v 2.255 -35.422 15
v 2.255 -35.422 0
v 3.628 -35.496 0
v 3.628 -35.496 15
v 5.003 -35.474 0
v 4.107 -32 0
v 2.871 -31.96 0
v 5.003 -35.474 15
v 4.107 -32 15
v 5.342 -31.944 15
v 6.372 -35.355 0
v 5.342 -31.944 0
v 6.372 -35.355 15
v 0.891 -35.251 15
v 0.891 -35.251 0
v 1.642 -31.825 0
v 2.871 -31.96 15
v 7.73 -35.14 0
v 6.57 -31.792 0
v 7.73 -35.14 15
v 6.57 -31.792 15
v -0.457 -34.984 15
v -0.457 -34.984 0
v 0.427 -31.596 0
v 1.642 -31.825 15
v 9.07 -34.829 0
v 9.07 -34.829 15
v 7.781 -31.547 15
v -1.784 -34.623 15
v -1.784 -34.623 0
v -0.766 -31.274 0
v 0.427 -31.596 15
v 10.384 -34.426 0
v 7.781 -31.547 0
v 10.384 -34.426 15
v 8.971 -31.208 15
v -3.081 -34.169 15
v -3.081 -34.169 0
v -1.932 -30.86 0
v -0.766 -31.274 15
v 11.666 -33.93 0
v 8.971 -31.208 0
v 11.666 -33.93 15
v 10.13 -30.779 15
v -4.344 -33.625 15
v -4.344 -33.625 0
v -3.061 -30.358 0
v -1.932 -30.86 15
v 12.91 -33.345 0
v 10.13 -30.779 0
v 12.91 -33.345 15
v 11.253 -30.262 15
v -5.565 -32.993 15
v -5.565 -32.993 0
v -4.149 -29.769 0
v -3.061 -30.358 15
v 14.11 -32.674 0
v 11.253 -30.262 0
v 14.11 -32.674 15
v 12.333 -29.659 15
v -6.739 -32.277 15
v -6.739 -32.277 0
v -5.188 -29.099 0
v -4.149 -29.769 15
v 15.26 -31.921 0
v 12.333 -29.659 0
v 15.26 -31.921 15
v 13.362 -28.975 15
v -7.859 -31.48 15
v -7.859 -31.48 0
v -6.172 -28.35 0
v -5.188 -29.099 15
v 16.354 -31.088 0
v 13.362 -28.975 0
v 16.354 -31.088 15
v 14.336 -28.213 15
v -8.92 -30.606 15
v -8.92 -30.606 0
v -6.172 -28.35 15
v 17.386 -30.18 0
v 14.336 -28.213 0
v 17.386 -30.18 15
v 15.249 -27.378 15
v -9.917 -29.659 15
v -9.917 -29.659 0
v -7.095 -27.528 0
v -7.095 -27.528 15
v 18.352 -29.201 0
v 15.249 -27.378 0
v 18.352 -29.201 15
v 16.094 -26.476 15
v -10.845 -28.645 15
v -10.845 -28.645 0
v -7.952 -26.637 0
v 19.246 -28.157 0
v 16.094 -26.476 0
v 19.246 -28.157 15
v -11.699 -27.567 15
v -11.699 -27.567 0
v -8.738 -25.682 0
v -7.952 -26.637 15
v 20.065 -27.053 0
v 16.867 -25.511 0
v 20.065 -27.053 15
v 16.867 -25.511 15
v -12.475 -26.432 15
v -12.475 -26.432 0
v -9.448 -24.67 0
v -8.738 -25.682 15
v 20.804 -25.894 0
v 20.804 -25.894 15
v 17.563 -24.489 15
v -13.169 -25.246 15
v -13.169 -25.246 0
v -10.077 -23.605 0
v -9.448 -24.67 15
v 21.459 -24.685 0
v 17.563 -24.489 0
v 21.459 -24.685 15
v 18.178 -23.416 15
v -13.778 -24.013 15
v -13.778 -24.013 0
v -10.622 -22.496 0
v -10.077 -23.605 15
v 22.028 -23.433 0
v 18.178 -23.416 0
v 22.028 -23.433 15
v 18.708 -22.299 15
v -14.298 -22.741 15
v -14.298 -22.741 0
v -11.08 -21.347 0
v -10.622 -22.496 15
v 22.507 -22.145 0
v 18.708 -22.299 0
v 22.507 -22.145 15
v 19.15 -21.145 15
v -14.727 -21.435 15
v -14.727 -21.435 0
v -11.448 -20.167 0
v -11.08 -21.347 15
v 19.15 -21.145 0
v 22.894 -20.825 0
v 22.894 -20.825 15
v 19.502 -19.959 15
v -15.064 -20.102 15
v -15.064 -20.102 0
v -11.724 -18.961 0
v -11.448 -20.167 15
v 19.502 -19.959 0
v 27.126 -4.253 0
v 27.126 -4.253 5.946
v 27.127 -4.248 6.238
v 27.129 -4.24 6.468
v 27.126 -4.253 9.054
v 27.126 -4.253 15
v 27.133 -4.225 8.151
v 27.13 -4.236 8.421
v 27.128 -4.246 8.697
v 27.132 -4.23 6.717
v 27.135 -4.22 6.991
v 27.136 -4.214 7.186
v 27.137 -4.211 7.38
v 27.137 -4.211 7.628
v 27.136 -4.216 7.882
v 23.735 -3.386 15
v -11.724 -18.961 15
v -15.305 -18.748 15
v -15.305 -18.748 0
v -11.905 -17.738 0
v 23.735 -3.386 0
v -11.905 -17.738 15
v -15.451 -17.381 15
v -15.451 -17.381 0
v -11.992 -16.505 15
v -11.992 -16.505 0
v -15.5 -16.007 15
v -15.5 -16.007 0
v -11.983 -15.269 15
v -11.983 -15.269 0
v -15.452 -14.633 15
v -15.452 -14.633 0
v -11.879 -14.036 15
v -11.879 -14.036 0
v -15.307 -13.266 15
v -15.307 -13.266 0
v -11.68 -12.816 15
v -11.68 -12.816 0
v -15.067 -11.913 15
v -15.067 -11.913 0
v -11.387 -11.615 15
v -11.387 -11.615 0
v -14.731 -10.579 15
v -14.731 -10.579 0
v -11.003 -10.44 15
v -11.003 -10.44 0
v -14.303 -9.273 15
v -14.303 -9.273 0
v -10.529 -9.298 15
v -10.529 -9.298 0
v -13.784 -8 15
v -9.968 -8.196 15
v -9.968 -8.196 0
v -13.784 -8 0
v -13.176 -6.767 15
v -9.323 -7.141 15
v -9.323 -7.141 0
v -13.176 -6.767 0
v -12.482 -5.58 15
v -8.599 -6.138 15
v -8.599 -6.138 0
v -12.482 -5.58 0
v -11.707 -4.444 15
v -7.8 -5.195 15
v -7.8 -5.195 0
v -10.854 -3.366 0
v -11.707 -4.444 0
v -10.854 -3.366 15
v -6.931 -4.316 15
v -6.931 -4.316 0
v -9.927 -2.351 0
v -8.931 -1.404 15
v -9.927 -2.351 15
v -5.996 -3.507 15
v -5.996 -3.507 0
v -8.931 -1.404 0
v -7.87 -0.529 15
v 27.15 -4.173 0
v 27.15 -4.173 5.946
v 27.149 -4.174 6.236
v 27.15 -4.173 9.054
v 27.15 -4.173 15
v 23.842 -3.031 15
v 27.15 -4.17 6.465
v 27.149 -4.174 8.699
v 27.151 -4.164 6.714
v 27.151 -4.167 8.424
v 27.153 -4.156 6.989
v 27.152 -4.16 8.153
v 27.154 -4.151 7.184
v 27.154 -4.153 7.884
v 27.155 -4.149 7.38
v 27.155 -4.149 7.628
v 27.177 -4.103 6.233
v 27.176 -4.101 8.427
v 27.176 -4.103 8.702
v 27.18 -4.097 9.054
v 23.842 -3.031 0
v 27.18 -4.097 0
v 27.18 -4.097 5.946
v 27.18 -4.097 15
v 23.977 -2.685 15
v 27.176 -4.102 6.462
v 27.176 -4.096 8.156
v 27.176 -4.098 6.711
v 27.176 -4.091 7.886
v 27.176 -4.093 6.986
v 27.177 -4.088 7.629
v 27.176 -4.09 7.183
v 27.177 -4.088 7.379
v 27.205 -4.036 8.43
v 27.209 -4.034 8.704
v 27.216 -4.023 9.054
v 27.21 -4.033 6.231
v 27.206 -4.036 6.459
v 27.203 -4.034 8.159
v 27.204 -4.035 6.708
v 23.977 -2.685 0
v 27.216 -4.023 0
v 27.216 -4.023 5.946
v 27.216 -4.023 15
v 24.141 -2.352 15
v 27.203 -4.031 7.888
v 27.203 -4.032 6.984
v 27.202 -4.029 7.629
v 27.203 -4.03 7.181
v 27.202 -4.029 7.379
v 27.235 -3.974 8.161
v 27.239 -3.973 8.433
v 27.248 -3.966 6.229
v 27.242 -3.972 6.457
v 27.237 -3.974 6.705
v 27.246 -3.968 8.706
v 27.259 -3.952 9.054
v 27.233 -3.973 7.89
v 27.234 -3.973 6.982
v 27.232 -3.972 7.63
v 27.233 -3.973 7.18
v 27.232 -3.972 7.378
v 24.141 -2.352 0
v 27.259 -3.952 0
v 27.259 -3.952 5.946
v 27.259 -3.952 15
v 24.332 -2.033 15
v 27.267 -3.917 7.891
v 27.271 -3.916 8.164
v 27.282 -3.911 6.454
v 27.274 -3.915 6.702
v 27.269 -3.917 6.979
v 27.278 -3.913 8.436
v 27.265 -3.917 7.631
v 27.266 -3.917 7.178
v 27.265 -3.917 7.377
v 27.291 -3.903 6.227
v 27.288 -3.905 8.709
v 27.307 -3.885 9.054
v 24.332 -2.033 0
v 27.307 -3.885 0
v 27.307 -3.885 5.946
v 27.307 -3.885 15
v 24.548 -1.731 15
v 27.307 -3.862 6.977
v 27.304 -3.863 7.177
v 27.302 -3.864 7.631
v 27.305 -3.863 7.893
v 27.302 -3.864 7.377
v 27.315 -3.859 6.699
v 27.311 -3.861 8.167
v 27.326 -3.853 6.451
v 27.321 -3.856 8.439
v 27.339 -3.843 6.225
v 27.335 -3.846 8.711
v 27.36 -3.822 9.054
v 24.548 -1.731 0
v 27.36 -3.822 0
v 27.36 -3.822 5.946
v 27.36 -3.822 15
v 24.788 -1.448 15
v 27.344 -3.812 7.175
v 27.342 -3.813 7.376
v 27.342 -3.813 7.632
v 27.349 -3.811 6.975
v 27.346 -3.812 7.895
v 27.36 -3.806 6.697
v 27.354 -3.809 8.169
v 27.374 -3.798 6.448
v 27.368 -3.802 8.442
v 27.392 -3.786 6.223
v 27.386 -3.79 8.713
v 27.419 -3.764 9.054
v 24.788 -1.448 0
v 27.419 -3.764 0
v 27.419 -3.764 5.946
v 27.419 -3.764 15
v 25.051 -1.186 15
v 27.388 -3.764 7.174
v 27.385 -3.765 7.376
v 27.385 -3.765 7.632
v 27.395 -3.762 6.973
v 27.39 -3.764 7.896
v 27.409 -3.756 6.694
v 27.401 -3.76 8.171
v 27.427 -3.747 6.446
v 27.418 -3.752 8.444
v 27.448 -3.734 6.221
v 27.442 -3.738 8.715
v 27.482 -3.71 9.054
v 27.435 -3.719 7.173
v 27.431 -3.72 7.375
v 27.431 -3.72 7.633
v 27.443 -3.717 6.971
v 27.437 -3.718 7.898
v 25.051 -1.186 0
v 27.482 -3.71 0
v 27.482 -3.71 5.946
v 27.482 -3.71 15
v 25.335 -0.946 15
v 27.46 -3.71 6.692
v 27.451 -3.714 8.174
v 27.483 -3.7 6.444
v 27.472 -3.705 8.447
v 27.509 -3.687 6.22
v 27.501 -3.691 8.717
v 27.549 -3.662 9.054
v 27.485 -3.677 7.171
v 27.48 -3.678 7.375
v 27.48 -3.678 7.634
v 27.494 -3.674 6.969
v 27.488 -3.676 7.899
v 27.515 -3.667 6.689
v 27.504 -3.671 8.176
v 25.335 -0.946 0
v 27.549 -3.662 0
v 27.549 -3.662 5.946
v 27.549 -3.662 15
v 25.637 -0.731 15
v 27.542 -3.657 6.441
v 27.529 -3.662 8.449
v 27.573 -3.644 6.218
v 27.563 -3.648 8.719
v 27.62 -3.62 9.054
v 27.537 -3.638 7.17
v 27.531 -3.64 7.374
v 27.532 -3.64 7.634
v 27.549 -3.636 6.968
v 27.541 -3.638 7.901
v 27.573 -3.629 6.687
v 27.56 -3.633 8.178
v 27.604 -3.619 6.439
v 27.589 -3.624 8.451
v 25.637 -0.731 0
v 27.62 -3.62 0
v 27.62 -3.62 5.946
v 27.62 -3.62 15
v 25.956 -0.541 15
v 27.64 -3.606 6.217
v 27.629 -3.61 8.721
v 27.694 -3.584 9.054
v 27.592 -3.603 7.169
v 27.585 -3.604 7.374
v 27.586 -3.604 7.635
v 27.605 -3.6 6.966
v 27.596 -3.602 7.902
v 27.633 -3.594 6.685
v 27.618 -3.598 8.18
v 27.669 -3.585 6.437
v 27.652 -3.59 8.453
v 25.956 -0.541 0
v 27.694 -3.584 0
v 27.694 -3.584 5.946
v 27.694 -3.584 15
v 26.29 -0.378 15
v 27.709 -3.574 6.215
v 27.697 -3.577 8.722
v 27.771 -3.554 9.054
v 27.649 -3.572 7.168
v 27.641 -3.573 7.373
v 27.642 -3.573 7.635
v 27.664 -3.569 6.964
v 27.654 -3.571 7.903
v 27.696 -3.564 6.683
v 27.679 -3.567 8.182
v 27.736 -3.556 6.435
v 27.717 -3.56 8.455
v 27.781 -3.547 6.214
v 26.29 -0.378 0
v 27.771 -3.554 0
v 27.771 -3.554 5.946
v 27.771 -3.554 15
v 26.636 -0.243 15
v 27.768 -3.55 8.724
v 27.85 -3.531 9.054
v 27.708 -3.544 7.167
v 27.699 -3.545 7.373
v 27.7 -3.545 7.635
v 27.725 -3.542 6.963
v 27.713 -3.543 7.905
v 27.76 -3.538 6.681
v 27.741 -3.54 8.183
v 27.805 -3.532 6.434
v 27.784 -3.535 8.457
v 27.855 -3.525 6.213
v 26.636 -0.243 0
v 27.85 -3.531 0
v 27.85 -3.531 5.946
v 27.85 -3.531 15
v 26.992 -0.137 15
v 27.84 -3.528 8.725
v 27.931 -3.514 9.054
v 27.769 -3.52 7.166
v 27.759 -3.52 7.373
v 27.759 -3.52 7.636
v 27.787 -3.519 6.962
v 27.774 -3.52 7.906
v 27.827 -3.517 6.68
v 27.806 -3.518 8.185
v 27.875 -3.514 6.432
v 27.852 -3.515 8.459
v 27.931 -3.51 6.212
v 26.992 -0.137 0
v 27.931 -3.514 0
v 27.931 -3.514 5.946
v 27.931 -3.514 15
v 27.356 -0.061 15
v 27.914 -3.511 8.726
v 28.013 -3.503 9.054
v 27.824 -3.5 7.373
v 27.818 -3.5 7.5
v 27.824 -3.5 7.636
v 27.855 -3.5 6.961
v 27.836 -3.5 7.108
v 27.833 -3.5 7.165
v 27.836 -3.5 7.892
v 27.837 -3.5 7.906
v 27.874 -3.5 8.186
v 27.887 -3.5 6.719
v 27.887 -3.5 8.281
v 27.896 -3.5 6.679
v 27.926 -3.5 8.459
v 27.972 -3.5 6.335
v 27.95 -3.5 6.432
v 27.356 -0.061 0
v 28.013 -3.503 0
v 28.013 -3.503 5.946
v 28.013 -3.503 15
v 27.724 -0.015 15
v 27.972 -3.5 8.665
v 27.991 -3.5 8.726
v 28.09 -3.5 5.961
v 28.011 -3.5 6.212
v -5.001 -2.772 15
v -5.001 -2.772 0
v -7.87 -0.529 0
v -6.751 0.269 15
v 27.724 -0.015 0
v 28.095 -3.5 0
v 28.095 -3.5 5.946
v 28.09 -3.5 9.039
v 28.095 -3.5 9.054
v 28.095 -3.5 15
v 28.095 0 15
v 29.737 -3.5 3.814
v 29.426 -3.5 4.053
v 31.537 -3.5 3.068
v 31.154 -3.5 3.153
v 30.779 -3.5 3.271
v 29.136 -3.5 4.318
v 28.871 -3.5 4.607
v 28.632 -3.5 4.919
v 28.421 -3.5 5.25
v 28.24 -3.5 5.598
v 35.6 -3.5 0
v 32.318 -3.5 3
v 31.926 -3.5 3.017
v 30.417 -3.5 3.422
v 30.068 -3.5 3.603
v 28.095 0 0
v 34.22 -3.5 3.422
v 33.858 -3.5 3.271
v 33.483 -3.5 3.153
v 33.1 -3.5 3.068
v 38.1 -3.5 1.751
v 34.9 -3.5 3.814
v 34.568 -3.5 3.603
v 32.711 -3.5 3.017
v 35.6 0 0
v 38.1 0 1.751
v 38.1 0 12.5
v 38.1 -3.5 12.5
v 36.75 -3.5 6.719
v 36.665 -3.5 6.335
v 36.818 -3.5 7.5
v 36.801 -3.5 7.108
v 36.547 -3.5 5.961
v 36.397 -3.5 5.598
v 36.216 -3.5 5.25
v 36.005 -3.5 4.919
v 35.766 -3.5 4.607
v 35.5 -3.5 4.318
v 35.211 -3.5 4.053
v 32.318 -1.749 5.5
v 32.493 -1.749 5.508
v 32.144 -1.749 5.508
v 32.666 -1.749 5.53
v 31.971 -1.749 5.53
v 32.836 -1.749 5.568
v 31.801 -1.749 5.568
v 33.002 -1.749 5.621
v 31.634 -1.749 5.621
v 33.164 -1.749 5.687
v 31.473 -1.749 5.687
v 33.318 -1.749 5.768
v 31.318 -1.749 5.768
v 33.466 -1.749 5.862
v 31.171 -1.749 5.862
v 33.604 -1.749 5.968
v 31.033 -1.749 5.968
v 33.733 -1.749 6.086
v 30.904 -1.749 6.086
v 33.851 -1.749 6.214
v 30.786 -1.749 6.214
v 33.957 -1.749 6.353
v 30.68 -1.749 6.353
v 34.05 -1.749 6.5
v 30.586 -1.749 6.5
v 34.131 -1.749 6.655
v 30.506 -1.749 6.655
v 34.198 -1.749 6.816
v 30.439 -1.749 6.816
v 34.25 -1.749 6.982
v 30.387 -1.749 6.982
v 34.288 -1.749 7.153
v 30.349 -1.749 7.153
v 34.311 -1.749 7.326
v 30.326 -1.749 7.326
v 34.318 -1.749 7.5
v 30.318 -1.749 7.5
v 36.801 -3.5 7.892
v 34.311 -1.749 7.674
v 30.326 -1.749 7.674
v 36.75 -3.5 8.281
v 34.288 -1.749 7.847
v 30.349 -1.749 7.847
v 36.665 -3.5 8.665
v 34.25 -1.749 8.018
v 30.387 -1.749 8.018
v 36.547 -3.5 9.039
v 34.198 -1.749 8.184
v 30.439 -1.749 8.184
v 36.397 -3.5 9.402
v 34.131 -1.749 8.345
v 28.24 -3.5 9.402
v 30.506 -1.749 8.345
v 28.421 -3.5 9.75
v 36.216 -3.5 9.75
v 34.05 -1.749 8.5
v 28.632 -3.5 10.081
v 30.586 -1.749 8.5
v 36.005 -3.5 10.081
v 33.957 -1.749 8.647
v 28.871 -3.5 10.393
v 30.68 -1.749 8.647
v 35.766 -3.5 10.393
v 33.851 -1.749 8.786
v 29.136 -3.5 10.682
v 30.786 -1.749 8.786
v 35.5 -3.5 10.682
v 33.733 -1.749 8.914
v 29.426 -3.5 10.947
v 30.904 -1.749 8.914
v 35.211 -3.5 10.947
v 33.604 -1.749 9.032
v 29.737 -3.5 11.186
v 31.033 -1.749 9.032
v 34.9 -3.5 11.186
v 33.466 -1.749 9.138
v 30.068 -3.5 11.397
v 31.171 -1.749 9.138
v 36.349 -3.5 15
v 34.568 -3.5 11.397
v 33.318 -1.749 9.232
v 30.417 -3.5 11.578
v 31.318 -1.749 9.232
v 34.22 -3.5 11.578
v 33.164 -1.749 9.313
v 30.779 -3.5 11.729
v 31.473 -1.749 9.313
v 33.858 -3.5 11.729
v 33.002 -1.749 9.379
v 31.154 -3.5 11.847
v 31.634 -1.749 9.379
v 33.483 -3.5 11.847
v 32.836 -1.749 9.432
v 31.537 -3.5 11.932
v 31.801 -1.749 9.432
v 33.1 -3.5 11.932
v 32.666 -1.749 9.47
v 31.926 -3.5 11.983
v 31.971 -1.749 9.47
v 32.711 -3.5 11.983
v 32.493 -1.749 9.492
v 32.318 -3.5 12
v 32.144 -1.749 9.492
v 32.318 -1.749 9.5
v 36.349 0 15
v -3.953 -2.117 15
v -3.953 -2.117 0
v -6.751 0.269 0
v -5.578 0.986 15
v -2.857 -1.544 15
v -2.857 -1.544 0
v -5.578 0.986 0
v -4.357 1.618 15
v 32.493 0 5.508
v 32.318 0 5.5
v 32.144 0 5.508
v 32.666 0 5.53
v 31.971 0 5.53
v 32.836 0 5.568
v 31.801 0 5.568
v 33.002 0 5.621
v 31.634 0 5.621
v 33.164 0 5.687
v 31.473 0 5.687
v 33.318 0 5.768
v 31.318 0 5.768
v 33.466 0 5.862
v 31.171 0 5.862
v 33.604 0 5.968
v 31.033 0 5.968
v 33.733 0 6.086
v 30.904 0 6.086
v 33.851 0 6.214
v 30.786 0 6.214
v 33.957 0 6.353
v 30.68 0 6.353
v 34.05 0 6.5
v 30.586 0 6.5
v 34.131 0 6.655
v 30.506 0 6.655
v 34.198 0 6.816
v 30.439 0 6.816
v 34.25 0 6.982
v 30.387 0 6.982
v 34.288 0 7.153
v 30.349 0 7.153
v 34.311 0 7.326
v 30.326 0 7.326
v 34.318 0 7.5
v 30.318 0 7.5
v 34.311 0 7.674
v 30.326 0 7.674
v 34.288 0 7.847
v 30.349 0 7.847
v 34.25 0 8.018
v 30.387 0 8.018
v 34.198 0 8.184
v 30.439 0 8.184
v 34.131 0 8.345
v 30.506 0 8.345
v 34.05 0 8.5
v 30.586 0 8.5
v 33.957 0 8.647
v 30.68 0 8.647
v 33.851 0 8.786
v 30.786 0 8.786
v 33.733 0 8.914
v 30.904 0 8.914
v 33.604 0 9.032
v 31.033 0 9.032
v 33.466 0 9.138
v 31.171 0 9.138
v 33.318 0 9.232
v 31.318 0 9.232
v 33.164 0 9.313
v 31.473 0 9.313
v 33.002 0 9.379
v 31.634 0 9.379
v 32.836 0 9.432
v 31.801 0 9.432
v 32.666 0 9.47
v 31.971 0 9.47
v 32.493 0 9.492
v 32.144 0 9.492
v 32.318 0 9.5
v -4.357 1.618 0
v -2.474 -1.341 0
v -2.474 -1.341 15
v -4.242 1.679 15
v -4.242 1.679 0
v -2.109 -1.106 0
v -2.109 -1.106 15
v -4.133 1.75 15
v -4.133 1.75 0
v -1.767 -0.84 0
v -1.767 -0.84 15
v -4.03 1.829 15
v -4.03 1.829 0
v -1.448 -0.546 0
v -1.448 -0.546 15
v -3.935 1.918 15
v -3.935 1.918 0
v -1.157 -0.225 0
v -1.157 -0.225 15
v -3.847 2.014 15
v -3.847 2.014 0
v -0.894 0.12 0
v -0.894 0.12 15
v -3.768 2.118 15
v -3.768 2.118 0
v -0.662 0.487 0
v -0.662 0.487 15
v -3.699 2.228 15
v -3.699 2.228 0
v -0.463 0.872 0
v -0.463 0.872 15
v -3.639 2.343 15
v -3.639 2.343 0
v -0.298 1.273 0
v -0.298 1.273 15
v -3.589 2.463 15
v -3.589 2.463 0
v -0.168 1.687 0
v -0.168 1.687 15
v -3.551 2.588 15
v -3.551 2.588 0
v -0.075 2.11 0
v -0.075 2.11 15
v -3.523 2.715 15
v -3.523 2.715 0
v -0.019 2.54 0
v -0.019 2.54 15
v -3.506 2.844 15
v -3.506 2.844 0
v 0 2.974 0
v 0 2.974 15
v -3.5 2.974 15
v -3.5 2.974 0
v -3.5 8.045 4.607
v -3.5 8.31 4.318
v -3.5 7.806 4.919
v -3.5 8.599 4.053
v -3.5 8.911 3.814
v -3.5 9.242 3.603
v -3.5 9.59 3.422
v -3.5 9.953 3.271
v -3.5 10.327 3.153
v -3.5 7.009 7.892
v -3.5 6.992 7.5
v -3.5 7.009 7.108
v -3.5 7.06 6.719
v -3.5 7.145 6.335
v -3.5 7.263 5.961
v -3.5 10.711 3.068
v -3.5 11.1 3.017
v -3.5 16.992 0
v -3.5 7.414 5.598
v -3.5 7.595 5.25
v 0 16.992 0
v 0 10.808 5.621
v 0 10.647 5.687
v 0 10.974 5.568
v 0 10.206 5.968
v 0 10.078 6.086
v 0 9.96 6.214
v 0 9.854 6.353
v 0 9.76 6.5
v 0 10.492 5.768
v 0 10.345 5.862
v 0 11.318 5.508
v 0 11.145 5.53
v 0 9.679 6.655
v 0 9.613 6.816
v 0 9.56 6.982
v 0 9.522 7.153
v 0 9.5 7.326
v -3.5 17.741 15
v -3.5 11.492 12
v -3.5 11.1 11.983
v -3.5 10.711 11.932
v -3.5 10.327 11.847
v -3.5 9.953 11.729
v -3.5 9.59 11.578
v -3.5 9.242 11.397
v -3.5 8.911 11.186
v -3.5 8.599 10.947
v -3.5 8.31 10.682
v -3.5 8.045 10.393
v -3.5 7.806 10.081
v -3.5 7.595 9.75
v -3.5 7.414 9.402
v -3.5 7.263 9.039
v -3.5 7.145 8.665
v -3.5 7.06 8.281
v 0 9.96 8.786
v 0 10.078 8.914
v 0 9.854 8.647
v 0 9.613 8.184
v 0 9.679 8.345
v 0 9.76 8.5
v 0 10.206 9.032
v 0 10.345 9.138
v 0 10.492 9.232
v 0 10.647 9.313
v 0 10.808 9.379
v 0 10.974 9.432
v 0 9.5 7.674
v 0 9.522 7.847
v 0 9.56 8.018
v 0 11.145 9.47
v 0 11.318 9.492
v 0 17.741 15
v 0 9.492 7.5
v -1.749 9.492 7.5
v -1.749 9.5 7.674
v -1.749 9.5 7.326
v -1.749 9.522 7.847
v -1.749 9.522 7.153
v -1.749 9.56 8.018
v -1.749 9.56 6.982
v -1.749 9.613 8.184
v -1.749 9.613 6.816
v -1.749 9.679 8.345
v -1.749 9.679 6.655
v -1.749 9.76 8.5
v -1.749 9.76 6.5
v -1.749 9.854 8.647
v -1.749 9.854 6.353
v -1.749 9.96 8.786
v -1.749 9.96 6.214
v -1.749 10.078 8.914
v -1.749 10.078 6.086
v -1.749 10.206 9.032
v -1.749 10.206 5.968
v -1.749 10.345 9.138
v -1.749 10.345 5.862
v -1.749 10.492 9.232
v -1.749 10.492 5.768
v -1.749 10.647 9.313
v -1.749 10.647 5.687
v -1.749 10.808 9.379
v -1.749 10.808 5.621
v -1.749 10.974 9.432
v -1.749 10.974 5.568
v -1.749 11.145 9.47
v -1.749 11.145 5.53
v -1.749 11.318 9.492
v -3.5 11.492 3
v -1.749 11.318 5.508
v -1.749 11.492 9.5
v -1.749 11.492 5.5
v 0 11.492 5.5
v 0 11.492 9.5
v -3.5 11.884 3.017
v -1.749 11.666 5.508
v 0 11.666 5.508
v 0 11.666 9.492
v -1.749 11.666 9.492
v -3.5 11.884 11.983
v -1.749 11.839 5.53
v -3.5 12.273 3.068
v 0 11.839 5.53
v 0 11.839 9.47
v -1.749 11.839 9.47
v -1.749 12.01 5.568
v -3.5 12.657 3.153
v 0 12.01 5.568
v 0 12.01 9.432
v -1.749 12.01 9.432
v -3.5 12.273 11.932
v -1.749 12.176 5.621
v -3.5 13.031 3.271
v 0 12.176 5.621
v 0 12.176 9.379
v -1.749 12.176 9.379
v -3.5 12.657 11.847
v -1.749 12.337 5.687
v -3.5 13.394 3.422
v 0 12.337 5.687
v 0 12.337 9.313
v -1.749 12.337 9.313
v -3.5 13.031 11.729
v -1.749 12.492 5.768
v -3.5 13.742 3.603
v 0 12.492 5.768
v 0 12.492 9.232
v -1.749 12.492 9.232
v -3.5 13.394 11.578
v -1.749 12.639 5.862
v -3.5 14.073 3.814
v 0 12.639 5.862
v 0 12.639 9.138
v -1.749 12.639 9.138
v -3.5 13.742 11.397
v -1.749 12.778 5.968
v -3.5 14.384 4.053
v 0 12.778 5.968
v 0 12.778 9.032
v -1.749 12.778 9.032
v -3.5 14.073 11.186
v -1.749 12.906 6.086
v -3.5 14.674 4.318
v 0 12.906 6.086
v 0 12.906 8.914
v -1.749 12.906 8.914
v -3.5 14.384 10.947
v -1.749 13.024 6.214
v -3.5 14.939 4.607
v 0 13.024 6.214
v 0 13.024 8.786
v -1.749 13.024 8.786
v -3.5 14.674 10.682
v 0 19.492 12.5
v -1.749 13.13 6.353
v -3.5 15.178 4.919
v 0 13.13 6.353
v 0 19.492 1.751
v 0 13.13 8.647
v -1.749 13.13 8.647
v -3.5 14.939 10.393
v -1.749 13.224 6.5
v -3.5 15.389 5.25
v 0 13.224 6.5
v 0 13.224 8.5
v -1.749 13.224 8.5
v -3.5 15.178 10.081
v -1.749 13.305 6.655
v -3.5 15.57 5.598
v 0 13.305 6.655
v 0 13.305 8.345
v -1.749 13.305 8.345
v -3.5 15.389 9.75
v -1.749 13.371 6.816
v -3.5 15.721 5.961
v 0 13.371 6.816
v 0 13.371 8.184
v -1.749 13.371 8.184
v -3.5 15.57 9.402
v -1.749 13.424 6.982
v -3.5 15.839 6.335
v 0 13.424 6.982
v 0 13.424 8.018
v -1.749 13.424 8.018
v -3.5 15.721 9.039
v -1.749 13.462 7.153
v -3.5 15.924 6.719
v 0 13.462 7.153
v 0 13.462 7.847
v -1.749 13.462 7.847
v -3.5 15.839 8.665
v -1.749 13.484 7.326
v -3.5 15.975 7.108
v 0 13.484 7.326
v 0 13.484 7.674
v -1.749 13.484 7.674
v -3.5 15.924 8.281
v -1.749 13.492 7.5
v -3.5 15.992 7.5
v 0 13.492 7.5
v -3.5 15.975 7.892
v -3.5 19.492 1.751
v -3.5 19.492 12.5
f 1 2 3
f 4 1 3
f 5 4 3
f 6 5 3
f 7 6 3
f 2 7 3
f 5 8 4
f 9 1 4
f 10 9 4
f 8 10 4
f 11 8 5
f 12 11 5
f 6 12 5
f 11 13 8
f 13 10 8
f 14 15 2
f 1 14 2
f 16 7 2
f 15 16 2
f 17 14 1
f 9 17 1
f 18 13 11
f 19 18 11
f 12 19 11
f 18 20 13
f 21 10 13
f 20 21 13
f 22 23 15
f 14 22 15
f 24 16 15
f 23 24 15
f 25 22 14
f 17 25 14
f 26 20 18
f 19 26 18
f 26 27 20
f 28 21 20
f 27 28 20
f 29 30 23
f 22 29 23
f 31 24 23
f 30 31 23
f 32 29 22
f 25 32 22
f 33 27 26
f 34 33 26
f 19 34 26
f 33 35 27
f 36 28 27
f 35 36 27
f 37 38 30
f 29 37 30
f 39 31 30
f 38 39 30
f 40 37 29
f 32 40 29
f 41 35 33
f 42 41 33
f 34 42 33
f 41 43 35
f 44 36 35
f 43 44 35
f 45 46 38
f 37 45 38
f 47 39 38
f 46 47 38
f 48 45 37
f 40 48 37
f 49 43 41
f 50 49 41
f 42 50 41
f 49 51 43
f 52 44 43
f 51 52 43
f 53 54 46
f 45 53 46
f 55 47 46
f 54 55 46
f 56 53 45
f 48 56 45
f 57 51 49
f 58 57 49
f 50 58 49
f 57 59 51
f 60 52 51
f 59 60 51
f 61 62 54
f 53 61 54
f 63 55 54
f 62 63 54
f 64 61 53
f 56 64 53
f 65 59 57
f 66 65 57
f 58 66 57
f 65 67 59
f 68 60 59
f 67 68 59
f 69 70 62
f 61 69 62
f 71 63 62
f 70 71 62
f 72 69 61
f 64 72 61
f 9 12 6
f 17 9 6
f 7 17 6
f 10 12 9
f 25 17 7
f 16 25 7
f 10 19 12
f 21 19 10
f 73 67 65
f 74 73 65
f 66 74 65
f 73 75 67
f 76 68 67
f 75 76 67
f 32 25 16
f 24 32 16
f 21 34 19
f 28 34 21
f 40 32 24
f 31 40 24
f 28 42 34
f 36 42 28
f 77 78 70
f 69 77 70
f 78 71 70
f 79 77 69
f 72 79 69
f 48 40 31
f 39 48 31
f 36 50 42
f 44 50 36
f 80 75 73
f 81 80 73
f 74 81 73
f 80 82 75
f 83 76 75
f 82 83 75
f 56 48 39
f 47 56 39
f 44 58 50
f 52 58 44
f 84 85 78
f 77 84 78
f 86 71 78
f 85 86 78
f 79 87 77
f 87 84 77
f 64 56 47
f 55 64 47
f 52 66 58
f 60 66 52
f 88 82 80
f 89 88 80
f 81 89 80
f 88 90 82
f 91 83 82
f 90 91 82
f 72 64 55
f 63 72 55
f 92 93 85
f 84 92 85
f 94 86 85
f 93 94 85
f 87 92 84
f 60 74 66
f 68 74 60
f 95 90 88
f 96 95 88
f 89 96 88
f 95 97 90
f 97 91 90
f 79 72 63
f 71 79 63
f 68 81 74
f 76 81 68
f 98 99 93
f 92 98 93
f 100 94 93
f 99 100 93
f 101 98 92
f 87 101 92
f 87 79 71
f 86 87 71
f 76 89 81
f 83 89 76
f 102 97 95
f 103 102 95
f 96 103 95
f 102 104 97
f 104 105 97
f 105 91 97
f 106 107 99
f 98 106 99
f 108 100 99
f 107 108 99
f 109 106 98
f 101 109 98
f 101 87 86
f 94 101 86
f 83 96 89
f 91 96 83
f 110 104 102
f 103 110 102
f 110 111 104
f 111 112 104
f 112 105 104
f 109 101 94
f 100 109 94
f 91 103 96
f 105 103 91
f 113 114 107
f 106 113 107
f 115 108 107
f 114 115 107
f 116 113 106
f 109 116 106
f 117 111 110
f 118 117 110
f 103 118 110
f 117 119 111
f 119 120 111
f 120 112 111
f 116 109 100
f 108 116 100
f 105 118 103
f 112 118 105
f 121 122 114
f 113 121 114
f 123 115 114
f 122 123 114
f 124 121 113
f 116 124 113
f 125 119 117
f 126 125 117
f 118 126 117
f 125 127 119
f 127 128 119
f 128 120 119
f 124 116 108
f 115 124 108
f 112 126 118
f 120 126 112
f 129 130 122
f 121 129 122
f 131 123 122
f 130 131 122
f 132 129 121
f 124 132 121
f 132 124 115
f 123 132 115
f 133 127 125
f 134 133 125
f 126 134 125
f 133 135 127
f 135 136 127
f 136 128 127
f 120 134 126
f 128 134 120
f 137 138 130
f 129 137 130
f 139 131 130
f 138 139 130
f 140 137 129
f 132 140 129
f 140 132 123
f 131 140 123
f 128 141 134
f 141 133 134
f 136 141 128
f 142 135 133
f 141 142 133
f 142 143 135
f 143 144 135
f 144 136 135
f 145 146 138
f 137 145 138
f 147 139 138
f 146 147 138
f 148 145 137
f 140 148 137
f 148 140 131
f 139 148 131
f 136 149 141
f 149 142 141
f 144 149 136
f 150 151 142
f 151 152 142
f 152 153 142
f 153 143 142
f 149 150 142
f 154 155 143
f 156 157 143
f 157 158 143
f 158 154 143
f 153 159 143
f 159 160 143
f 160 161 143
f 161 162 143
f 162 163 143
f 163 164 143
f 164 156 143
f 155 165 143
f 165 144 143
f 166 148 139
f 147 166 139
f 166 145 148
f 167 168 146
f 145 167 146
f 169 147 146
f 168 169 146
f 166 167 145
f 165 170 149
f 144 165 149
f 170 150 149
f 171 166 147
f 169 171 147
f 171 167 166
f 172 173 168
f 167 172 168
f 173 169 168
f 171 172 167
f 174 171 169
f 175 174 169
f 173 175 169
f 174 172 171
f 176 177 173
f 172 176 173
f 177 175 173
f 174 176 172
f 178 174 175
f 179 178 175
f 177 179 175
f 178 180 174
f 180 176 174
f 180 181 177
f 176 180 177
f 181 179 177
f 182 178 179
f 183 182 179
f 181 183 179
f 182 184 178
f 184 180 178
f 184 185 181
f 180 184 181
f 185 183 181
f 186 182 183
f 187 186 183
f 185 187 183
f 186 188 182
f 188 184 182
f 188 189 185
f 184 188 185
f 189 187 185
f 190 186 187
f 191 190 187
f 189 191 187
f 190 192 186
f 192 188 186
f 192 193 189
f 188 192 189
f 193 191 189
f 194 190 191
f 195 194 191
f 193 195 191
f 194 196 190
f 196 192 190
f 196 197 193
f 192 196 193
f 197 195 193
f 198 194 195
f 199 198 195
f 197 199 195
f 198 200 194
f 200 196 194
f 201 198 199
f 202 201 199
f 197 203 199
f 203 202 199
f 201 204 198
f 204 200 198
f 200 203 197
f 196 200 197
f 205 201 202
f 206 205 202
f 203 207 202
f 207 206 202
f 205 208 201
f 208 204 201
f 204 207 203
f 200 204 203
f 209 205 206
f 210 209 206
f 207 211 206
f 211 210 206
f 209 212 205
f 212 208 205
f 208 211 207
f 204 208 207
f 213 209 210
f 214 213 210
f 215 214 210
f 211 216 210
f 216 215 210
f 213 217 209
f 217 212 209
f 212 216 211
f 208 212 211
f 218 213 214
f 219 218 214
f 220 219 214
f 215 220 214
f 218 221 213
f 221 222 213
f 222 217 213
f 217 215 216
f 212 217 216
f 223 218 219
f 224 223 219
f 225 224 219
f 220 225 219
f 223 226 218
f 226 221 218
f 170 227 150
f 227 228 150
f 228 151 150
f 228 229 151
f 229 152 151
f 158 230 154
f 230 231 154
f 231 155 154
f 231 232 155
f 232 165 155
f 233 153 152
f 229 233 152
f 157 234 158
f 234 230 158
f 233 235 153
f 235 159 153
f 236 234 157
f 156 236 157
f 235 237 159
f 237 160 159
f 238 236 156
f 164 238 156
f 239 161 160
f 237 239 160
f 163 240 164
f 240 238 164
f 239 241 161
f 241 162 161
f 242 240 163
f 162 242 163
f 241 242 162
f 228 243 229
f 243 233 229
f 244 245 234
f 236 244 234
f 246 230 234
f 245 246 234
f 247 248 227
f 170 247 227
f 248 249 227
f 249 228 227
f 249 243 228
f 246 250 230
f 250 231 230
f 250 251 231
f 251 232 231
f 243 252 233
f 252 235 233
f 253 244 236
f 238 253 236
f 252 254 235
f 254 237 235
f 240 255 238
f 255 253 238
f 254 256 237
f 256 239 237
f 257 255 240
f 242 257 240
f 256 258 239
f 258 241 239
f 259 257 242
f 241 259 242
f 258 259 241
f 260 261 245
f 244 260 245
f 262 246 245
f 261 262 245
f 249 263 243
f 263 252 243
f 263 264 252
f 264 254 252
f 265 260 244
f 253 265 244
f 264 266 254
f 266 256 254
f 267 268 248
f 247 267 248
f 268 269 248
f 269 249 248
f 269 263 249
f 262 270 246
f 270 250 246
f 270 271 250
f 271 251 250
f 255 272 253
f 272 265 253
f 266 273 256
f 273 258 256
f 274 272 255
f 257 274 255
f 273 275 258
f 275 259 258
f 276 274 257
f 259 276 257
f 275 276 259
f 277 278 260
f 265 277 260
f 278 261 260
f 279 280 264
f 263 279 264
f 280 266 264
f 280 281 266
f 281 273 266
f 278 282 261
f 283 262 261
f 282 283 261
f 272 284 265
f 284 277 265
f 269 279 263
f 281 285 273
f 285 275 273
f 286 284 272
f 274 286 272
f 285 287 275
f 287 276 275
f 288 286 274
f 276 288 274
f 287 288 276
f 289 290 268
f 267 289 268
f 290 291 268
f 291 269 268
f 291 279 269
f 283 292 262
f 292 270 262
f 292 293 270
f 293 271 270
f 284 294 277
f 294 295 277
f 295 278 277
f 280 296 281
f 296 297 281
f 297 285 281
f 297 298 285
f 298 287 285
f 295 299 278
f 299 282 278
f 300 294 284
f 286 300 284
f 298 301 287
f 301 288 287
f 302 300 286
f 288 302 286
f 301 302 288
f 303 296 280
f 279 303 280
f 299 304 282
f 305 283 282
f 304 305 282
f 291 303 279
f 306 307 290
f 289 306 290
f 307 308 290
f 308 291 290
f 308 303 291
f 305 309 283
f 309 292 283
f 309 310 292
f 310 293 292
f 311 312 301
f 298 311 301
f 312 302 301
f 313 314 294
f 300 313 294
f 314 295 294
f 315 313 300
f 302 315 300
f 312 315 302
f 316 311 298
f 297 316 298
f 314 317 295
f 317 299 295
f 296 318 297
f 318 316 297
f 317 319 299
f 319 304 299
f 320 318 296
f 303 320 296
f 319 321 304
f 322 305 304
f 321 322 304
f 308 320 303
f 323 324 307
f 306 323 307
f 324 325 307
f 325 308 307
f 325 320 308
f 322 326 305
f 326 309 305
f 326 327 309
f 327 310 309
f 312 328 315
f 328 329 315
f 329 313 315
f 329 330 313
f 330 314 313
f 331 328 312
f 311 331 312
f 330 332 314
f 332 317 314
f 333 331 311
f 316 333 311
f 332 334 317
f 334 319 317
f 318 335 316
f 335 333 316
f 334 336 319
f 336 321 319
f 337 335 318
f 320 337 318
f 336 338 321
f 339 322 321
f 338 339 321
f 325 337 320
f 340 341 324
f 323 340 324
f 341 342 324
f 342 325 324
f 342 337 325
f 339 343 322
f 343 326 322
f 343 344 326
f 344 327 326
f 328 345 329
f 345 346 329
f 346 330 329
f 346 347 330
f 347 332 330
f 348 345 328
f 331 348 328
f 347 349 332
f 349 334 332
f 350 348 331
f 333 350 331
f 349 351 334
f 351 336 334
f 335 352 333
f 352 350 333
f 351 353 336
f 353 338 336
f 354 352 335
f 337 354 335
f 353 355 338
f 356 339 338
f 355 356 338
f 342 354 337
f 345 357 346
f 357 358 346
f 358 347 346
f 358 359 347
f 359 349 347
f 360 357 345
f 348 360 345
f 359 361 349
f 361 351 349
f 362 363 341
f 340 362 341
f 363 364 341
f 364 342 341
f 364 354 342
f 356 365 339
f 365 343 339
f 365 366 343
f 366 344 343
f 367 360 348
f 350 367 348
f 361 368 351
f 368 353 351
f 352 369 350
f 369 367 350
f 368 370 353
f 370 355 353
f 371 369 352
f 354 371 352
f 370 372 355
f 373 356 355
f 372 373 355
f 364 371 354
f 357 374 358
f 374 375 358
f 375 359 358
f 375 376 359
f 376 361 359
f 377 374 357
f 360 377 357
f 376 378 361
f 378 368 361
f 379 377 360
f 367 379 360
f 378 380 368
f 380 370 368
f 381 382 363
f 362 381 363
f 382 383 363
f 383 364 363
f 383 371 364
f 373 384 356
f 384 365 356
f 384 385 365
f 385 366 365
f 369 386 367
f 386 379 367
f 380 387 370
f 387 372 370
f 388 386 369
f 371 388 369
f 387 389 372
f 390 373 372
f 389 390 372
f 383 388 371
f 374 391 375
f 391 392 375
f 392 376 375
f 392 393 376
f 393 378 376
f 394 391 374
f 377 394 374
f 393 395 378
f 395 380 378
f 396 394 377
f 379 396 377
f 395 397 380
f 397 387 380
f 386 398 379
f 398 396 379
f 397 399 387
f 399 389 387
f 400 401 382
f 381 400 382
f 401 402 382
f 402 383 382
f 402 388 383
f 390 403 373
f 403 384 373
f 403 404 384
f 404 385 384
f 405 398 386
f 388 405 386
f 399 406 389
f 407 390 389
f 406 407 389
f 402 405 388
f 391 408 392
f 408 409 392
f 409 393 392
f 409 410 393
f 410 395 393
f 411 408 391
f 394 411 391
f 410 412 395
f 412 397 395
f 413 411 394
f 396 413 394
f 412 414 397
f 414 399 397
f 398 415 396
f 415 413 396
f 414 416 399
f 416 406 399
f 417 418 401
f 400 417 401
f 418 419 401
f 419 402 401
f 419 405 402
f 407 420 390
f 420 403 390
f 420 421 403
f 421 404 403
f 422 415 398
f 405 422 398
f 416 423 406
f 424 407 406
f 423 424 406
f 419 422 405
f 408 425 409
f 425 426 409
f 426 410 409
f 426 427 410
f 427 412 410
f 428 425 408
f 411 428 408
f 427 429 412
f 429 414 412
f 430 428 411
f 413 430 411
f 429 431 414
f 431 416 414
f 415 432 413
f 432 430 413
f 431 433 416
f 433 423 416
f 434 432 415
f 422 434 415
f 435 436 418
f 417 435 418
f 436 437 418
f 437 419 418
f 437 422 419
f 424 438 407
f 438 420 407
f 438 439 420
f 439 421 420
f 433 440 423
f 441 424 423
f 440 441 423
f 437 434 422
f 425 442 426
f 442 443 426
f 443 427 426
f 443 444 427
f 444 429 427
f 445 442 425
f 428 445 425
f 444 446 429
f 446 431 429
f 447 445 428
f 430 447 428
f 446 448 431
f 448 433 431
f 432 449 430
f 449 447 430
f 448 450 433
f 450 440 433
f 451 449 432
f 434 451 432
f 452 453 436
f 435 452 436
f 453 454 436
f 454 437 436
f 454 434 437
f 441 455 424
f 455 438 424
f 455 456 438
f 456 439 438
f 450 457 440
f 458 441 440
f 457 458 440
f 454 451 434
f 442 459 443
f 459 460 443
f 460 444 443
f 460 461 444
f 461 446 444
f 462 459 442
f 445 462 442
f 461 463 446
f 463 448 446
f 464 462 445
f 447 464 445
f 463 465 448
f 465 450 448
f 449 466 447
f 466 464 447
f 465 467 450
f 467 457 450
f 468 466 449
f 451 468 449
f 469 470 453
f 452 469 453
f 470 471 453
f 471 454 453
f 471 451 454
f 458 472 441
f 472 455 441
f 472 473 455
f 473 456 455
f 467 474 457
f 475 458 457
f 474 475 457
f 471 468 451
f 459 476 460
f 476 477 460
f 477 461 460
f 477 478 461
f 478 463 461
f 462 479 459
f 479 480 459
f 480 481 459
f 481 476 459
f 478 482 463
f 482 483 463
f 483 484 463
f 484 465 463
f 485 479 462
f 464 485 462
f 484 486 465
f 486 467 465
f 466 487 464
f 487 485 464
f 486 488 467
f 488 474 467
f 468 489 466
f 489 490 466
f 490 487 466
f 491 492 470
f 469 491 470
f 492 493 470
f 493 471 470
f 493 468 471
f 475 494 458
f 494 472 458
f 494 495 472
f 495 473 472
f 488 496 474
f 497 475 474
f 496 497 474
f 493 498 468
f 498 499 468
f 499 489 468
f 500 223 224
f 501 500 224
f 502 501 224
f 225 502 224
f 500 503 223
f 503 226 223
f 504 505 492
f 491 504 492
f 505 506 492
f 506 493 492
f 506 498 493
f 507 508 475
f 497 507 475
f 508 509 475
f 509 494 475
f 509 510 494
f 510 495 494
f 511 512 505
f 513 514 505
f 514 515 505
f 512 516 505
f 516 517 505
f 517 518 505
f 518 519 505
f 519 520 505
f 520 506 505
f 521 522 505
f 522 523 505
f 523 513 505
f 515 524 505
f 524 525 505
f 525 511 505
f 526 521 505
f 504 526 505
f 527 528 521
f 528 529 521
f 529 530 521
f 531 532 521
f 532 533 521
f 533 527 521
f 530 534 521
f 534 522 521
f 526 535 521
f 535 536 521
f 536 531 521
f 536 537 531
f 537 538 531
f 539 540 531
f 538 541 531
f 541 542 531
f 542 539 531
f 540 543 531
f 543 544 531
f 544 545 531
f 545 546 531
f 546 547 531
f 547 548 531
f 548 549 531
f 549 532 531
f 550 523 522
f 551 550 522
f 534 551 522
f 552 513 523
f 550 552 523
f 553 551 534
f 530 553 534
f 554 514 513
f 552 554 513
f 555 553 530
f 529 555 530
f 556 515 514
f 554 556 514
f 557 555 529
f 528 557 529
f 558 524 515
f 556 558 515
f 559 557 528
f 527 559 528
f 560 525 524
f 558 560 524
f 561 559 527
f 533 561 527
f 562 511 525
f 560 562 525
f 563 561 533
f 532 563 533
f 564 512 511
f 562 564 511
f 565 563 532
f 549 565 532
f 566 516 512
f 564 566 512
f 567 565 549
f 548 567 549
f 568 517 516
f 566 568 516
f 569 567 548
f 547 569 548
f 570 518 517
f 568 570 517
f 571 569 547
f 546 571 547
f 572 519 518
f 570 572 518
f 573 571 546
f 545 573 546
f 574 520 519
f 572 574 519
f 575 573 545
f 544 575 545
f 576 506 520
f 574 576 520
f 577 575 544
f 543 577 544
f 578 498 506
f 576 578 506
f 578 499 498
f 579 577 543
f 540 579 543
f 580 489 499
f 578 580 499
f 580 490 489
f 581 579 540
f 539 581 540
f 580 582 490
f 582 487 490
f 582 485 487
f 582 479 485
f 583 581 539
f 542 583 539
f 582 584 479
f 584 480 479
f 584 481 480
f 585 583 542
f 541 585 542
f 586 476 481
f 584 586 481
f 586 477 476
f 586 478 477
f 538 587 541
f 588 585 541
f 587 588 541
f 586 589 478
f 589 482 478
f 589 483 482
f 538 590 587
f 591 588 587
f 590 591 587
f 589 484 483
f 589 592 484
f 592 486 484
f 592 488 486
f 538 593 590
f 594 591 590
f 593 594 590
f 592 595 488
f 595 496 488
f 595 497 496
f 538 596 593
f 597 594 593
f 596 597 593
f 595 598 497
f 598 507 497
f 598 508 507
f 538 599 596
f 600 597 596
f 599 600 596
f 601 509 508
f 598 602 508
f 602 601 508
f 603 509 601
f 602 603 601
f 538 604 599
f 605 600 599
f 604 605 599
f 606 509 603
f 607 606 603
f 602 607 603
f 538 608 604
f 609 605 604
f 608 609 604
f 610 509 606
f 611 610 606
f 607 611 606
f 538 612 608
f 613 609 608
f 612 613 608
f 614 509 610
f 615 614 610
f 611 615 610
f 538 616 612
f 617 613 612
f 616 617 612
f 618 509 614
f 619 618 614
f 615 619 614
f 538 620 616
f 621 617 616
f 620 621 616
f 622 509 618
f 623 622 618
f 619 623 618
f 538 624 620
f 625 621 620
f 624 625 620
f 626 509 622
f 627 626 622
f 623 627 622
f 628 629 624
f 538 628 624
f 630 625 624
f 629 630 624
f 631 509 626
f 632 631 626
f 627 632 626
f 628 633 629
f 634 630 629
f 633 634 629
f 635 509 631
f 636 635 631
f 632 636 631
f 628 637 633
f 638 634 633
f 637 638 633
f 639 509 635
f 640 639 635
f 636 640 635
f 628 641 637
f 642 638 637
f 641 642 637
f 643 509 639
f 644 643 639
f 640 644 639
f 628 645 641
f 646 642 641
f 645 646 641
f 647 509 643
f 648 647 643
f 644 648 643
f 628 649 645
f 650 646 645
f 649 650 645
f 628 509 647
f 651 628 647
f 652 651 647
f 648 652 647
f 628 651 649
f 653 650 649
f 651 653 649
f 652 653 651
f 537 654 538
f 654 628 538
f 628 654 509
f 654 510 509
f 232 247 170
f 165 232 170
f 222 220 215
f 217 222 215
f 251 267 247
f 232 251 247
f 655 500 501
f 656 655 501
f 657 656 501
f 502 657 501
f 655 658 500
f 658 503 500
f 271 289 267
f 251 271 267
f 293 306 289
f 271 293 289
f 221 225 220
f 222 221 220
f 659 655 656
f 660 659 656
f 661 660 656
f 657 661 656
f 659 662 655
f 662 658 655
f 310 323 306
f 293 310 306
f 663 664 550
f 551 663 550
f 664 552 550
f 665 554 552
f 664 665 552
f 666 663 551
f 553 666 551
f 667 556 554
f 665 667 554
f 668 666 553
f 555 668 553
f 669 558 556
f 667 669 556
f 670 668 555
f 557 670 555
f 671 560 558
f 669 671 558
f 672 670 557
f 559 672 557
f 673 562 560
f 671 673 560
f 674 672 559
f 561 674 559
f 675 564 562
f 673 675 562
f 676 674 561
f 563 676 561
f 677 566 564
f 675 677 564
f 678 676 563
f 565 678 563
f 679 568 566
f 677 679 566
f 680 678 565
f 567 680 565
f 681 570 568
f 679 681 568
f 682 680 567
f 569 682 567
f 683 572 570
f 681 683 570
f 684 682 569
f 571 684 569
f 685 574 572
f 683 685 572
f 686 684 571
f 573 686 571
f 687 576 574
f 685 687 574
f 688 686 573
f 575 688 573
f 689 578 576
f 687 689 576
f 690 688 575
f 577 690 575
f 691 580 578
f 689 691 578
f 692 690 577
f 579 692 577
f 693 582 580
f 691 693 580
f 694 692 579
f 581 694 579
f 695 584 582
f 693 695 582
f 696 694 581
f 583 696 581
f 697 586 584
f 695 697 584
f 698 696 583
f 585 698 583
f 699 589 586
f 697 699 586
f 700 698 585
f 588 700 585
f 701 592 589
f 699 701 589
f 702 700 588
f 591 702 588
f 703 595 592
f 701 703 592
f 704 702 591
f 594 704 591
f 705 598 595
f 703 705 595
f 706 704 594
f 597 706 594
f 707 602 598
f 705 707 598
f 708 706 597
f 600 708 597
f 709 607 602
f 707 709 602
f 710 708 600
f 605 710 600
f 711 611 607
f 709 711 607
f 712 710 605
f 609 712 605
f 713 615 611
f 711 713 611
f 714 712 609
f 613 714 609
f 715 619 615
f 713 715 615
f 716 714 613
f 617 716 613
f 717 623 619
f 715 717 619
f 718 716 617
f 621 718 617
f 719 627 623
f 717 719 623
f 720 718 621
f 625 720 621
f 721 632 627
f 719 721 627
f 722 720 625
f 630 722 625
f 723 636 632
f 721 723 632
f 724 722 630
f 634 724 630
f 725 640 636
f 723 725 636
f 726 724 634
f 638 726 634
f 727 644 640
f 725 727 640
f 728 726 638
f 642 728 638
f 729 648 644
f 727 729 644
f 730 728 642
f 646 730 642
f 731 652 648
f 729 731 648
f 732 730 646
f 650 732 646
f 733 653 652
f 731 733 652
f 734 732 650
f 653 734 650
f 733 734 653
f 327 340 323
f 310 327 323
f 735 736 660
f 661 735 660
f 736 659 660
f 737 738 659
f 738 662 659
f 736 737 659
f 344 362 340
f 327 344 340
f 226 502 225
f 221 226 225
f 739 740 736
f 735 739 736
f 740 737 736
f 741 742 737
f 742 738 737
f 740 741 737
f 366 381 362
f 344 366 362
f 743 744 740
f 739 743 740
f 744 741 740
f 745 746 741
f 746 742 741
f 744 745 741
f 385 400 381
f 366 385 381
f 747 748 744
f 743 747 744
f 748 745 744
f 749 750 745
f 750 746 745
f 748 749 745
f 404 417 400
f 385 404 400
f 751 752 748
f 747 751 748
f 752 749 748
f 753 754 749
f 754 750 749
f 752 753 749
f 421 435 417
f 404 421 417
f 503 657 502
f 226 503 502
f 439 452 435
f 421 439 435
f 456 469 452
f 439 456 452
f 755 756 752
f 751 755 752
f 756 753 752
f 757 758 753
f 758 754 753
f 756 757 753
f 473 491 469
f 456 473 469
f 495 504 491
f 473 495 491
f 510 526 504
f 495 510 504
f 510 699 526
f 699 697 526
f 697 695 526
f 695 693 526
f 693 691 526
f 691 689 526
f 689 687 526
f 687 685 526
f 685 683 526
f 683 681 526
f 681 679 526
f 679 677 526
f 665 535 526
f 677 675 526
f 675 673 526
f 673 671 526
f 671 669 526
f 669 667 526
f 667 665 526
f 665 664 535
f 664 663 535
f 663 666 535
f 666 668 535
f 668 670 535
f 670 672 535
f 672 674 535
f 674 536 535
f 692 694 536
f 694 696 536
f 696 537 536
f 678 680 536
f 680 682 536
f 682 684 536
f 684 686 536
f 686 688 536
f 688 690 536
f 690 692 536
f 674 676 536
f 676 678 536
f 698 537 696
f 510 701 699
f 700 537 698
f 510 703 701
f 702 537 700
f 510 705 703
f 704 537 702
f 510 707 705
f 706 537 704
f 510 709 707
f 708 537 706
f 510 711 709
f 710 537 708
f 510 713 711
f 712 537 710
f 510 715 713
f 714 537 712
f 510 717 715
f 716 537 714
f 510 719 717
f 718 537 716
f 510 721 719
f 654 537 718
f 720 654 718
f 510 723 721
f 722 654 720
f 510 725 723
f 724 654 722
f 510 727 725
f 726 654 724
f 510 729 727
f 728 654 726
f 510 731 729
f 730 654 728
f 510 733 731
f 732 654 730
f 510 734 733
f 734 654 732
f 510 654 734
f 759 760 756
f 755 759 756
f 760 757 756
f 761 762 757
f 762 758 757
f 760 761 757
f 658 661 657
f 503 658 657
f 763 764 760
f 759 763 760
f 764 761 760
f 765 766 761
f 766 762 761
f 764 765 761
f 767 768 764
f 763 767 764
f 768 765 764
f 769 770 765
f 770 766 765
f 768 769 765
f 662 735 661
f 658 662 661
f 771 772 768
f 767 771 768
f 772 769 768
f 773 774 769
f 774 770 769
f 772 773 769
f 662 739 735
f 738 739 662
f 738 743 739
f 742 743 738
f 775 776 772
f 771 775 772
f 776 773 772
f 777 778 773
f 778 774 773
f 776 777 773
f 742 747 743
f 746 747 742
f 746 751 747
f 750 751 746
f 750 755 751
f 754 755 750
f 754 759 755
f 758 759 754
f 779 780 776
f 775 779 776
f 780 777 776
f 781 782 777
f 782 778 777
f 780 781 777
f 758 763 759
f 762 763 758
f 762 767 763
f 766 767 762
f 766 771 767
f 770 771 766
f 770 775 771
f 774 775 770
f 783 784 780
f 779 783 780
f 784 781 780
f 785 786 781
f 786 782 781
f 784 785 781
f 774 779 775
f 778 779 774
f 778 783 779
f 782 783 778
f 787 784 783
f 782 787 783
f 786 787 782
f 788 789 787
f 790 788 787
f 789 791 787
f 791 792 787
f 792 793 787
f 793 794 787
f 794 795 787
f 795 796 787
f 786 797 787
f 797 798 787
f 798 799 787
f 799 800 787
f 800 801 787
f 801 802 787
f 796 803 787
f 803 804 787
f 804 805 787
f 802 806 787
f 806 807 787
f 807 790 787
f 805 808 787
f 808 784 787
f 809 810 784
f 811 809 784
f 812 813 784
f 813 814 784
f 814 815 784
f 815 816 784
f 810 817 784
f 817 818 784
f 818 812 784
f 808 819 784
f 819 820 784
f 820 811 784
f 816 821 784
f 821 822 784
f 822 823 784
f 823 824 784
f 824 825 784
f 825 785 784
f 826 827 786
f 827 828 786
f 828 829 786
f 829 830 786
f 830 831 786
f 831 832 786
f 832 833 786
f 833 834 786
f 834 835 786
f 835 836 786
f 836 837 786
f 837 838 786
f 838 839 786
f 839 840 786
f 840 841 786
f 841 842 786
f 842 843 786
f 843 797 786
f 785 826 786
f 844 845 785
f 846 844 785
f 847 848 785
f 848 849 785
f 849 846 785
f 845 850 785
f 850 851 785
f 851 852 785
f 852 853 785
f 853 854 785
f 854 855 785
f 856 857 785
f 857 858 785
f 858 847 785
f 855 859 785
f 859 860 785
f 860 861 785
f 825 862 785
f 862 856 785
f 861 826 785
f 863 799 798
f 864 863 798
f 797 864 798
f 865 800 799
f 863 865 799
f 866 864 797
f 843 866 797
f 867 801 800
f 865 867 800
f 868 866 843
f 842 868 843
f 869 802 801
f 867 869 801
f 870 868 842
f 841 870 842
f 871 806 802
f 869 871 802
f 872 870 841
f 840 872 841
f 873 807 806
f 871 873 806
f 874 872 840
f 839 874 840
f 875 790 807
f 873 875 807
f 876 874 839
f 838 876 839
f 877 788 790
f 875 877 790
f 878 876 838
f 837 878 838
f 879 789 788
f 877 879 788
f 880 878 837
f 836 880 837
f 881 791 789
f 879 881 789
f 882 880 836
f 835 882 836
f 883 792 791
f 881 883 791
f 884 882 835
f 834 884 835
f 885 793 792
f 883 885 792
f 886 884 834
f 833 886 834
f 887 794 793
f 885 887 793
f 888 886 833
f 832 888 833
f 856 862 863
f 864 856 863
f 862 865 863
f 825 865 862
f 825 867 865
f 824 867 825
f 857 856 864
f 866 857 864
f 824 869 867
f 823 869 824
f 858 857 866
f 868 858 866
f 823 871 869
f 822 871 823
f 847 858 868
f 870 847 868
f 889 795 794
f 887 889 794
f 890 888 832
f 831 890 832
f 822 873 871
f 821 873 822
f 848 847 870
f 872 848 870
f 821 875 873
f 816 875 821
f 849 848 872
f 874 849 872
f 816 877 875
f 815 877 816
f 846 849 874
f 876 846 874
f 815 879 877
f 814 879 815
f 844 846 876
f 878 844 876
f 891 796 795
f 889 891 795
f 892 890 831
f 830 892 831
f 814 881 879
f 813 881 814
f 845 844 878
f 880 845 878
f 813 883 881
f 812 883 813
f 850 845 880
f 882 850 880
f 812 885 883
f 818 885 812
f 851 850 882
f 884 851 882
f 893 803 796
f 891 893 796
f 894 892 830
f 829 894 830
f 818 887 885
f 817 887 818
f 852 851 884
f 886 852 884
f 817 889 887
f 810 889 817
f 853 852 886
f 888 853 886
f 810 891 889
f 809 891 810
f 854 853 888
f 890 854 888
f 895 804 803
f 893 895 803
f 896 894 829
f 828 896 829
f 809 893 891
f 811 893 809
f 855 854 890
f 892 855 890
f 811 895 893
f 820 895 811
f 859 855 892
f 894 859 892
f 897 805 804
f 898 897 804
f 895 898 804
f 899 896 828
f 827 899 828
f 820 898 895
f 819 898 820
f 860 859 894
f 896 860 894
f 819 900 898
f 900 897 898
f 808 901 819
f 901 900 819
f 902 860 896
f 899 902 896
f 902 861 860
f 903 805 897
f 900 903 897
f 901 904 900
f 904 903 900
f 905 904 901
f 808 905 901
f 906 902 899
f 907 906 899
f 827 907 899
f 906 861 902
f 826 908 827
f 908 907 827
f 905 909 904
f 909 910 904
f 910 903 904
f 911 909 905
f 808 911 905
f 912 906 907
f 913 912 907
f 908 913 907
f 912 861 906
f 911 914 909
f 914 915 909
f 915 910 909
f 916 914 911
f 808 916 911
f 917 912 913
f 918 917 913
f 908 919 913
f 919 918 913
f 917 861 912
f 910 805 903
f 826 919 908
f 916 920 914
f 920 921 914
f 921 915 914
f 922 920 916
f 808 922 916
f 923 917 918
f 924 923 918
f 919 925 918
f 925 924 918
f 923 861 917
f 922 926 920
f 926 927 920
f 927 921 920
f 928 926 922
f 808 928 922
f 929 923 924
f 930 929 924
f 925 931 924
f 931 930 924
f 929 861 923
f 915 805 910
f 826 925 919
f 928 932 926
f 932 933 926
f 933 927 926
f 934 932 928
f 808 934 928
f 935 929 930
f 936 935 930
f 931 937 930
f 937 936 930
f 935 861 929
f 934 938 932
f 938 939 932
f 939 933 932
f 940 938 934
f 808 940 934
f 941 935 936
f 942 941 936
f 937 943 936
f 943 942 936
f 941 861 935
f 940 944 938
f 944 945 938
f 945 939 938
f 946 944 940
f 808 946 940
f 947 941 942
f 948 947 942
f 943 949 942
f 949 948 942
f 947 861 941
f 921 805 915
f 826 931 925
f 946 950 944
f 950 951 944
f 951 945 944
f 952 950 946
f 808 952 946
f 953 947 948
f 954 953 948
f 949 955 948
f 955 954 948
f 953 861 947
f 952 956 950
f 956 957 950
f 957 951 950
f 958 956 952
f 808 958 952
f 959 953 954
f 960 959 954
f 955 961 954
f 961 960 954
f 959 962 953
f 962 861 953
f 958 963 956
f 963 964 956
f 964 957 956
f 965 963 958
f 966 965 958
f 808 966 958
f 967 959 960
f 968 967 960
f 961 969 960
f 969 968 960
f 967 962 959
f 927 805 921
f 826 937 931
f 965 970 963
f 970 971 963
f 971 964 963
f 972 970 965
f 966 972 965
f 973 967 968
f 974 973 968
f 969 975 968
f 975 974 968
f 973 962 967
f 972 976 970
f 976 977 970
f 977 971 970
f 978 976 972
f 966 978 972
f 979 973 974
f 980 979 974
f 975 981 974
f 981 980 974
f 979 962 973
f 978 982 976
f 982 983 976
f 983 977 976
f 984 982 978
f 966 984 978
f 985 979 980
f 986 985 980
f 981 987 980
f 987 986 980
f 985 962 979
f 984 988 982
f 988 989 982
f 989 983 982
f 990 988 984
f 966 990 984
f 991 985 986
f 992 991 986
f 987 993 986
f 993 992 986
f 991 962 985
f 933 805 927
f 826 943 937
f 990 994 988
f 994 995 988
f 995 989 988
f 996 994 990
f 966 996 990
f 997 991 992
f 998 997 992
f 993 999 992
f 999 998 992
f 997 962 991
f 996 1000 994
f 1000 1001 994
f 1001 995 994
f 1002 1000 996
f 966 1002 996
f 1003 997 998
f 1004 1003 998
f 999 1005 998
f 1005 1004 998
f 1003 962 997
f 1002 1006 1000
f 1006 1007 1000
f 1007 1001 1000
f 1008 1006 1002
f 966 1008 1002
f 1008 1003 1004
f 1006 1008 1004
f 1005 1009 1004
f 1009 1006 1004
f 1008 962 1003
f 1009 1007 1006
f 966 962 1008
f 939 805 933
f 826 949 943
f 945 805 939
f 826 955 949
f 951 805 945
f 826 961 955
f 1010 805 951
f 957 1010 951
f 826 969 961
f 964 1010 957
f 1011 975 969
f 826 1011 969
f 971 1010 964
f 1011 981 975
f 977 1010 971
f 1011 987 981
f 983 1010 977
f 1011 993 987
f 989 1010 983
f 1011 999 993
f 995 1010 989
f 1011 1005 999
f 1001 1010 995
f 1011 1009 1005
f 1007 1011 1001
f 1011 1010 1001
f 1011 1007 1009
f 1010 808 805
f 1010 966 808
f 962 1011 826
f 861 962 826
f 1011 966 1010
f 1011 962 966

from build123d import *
from OCP.BRepFilletAPI import BRepFilletAPI_MakeChamfer

# Parameters (mm, degrees)
BOSS_EXTRUDE1_DEPTH = 15
SKETCH2_R           = 2
CUT_EXTRUDE1_DEPTH  = 52.967393623
SKETCH3_R           = 2
CUT_EXTRUDE2_DEPTH  = 3.5
CHAMFER1_SIZE       = 2.5
CHAMFER1_SIZE2      = 1.750518846
CHAMFER2_SIZE       = 2.5
CHAMFER2_SIZE2      = 1.750518846
FILLET1_R           = 5
FILLET2_R           = 1.5
FILLET3_R           = 1
FILLET4_R           = 4.5


with BuildPart() as part:
    # Sketch1 → Boss-Extrude1 (new body)
    with BuildSketch(Plane.XY):
        with BuildLine():
            Line((24.6, 0), (38.1, 0))
            Line((38.1, 0), (38.1, -3.5))
            Line((38.1, -3.5), (27.318446602, -3.5))
            Line((27.318446602, -3.5), (22.893526956, -20.825415956))
            ThreePointArc((22.893526956, -20.825415956), (-8.755509301, -30.749473973), (-3.5, 2))
            Line((-3.5, 2), (-3.5, 19.491933385))
            Line((-3.5, 19.491933385), (0, 19.491933385))
            Line((0, 19.491933385), (0, -0.508066615))
            ThreePointArc((0, -0.508066615), (-7.298847951, -27.328549553), (19.502381092, -19.959315656))
            Line((19.502381092, -19.959315656), (24.6, 0))
        make_face()
    extrude(amount=BOSS_EXTRUDE1_DEPTH)

    # Sketch2 → Cut-Extrude1 (cut, through all)
    with BuildSketch(Plane.XZ.offset(3.5)):
        with Locations(Location((32.318446602, 7.5, 0), (0, 0, 270))):
            Circle(SKETCH2_R)
    extrude(amount=-CUT_EXTRUDE1_DEPTH, mode=Mode.SUBTRACT)

    # Sketch3 → Cut-Extrude2 (cut)
    with BuildSketch(Plane.ZY.offset(3.5)):
        with Locations(Location((7.5, 11.491933385, 0), (0, 0, 270))):
            Circle(SKETCH3_R)
    extrude(amount=-CUT_EXTRUDE2_DEPTH, mode=Mode.SUBTRACT)

    # Chamfer1: one chamfer whose edges measure the first distance from different faces: ONE call of the kernel's chamfer builder (chamfer() names one face for all edges)
    chamfer1_edges_1 = [part.edges().sort_by_distance(p)[0] for p in [
        (32.318446602, -3.5, 9.5),
    ]]
    chamfer1_side_1 = [part.faces().sort_by_distance(p)[0] for p in [
        (37.915272662, -3.5, 7.5),
    ]]
    chamfer1_edges_2 = [part.edges().sort_by_distance(p)[0] for p in [
        (-3.5, 13.491933385, 7.5),
    ]]
    chamfer1_side_2 = [part.faces().sort_by_distance(p)[0] for p in [
        (-3.5, 2.230427371, 7.5),
    ]]
    chamfer1 = BRepFilletAPI_MakeChamfer(part.part.solid().wrapped)
    for e in chamfer1_edges_1:
        chamfer1.Add(CHAMFER1_SIZE, CHAMFER1_SIZE2, e.wrapped, chamfer1_side_1[0].wrapped)  # the first distance lies on this face
    for e in chamfer1_edges_2:
        chamfer1.Add(CHAMFER1_SIZE, CHAMFER1_SIZE2, e.wrapped, chamfer1_side_2[0].wrapped)  # the first distance lies on this face
    add(Compound.cast(chamfer1.Shape()), mode=Mode.REPLACE)

    # Chamfer2: one chamfer whose edges measure the first distance from different faces: ONE call of the kernel's chamfer builder (chamfer() names one face for all edges)
    chamfer2_edges_1 = [part.edges().sort_by_distance(p)[0] for p in [
        (-1.75, 19.491933385, 0),
        (38.1, -1.75, 0),
    ]]
    chamfer2_side_1 = [part.faces().sort_by_distance(p)[0] for p in [
        (-2.732075997, 10.745966692, 0),
    ]]
    chamfer2_edges_2 = [part.edges().sort_by_distance(p)[0] for p in [
        (-1.75, 19.491933385, 15),
    ]]
    chamfer2_side_2 = [part.faces().sort_by_distance(p)[0] for p in [
        (-1.75, 19.491933385, 7.5),
    ]]
    chamfer2_edges_3 = [part.edges().sort_by_distance(p)[0] for p in [
        (38.1, -1.75, 15),
    ]]
    chamfer2_side_3 = [part.faces().sort_by_distance(p)[0] for p in [
        (38.1, -1.75, 7.5),
    ]]
    chamfer2 = BRepFilletAPI_MakeChamfer(part.part.solid().wrapped)
    for e in chamfer2_edges_1:
        chamfer2.Add(CHAMFER2_SIZE, CHAMFER2_SIZE2, e.wrapped, chamfer2_side_1[0].wrapped)  # the first distance lies on this face
    for e in chamfer2_edges_2:
        chamfer2.Add(CHAMFER2_SIZE, CHAMFER2_SIZE2, e.wrapped, chamfer2_side_2[0].wrapped)  # the first distance lies on this face
    for e in chamfer2_edges_3:
        chamfer2.Add(CHAMFER2_SIZE, CHAMFER2_SIZE2, e.wrapped, chamfer2_side_3[0].wrapped)  # the first distance lies on this face
    add(Compound.cast(chamfer2.Shape()), mode=Mode.REPLACE)

    # Fillet1
    fillet1_edges = [part.edges().sort_by_distance(p)[0] for p in [
        (0, -0.508066615, 7.5),
    ]]
    fillet(fillet1_edges, radius=FILLET1_R)

    # Fillet2
    fillet2_edges = [part.edges().sort_by_distance(p)[0] for p in [
        (-3.5, 2, 7.5),
    ]]
    fillet(fillet2_edges, radius=FILLET2_R)

    # Fillet3
    fillet3_edges = [part.edges().sort_by_distance(p)[0] for p in [
        (27.318446602, -3.5, 7.5),
    ]]
    fillet(fillet3_edges, radius=FILLET3_R)

    # Fillet4
    fillet4_edges = [part.edges().sort_by_distance(p)[0] for p in [
        (24.6, 0, 7.5),
    ]]
    fillet(fillet4_edges, radius=FILLET4_R)


solid = part.part
